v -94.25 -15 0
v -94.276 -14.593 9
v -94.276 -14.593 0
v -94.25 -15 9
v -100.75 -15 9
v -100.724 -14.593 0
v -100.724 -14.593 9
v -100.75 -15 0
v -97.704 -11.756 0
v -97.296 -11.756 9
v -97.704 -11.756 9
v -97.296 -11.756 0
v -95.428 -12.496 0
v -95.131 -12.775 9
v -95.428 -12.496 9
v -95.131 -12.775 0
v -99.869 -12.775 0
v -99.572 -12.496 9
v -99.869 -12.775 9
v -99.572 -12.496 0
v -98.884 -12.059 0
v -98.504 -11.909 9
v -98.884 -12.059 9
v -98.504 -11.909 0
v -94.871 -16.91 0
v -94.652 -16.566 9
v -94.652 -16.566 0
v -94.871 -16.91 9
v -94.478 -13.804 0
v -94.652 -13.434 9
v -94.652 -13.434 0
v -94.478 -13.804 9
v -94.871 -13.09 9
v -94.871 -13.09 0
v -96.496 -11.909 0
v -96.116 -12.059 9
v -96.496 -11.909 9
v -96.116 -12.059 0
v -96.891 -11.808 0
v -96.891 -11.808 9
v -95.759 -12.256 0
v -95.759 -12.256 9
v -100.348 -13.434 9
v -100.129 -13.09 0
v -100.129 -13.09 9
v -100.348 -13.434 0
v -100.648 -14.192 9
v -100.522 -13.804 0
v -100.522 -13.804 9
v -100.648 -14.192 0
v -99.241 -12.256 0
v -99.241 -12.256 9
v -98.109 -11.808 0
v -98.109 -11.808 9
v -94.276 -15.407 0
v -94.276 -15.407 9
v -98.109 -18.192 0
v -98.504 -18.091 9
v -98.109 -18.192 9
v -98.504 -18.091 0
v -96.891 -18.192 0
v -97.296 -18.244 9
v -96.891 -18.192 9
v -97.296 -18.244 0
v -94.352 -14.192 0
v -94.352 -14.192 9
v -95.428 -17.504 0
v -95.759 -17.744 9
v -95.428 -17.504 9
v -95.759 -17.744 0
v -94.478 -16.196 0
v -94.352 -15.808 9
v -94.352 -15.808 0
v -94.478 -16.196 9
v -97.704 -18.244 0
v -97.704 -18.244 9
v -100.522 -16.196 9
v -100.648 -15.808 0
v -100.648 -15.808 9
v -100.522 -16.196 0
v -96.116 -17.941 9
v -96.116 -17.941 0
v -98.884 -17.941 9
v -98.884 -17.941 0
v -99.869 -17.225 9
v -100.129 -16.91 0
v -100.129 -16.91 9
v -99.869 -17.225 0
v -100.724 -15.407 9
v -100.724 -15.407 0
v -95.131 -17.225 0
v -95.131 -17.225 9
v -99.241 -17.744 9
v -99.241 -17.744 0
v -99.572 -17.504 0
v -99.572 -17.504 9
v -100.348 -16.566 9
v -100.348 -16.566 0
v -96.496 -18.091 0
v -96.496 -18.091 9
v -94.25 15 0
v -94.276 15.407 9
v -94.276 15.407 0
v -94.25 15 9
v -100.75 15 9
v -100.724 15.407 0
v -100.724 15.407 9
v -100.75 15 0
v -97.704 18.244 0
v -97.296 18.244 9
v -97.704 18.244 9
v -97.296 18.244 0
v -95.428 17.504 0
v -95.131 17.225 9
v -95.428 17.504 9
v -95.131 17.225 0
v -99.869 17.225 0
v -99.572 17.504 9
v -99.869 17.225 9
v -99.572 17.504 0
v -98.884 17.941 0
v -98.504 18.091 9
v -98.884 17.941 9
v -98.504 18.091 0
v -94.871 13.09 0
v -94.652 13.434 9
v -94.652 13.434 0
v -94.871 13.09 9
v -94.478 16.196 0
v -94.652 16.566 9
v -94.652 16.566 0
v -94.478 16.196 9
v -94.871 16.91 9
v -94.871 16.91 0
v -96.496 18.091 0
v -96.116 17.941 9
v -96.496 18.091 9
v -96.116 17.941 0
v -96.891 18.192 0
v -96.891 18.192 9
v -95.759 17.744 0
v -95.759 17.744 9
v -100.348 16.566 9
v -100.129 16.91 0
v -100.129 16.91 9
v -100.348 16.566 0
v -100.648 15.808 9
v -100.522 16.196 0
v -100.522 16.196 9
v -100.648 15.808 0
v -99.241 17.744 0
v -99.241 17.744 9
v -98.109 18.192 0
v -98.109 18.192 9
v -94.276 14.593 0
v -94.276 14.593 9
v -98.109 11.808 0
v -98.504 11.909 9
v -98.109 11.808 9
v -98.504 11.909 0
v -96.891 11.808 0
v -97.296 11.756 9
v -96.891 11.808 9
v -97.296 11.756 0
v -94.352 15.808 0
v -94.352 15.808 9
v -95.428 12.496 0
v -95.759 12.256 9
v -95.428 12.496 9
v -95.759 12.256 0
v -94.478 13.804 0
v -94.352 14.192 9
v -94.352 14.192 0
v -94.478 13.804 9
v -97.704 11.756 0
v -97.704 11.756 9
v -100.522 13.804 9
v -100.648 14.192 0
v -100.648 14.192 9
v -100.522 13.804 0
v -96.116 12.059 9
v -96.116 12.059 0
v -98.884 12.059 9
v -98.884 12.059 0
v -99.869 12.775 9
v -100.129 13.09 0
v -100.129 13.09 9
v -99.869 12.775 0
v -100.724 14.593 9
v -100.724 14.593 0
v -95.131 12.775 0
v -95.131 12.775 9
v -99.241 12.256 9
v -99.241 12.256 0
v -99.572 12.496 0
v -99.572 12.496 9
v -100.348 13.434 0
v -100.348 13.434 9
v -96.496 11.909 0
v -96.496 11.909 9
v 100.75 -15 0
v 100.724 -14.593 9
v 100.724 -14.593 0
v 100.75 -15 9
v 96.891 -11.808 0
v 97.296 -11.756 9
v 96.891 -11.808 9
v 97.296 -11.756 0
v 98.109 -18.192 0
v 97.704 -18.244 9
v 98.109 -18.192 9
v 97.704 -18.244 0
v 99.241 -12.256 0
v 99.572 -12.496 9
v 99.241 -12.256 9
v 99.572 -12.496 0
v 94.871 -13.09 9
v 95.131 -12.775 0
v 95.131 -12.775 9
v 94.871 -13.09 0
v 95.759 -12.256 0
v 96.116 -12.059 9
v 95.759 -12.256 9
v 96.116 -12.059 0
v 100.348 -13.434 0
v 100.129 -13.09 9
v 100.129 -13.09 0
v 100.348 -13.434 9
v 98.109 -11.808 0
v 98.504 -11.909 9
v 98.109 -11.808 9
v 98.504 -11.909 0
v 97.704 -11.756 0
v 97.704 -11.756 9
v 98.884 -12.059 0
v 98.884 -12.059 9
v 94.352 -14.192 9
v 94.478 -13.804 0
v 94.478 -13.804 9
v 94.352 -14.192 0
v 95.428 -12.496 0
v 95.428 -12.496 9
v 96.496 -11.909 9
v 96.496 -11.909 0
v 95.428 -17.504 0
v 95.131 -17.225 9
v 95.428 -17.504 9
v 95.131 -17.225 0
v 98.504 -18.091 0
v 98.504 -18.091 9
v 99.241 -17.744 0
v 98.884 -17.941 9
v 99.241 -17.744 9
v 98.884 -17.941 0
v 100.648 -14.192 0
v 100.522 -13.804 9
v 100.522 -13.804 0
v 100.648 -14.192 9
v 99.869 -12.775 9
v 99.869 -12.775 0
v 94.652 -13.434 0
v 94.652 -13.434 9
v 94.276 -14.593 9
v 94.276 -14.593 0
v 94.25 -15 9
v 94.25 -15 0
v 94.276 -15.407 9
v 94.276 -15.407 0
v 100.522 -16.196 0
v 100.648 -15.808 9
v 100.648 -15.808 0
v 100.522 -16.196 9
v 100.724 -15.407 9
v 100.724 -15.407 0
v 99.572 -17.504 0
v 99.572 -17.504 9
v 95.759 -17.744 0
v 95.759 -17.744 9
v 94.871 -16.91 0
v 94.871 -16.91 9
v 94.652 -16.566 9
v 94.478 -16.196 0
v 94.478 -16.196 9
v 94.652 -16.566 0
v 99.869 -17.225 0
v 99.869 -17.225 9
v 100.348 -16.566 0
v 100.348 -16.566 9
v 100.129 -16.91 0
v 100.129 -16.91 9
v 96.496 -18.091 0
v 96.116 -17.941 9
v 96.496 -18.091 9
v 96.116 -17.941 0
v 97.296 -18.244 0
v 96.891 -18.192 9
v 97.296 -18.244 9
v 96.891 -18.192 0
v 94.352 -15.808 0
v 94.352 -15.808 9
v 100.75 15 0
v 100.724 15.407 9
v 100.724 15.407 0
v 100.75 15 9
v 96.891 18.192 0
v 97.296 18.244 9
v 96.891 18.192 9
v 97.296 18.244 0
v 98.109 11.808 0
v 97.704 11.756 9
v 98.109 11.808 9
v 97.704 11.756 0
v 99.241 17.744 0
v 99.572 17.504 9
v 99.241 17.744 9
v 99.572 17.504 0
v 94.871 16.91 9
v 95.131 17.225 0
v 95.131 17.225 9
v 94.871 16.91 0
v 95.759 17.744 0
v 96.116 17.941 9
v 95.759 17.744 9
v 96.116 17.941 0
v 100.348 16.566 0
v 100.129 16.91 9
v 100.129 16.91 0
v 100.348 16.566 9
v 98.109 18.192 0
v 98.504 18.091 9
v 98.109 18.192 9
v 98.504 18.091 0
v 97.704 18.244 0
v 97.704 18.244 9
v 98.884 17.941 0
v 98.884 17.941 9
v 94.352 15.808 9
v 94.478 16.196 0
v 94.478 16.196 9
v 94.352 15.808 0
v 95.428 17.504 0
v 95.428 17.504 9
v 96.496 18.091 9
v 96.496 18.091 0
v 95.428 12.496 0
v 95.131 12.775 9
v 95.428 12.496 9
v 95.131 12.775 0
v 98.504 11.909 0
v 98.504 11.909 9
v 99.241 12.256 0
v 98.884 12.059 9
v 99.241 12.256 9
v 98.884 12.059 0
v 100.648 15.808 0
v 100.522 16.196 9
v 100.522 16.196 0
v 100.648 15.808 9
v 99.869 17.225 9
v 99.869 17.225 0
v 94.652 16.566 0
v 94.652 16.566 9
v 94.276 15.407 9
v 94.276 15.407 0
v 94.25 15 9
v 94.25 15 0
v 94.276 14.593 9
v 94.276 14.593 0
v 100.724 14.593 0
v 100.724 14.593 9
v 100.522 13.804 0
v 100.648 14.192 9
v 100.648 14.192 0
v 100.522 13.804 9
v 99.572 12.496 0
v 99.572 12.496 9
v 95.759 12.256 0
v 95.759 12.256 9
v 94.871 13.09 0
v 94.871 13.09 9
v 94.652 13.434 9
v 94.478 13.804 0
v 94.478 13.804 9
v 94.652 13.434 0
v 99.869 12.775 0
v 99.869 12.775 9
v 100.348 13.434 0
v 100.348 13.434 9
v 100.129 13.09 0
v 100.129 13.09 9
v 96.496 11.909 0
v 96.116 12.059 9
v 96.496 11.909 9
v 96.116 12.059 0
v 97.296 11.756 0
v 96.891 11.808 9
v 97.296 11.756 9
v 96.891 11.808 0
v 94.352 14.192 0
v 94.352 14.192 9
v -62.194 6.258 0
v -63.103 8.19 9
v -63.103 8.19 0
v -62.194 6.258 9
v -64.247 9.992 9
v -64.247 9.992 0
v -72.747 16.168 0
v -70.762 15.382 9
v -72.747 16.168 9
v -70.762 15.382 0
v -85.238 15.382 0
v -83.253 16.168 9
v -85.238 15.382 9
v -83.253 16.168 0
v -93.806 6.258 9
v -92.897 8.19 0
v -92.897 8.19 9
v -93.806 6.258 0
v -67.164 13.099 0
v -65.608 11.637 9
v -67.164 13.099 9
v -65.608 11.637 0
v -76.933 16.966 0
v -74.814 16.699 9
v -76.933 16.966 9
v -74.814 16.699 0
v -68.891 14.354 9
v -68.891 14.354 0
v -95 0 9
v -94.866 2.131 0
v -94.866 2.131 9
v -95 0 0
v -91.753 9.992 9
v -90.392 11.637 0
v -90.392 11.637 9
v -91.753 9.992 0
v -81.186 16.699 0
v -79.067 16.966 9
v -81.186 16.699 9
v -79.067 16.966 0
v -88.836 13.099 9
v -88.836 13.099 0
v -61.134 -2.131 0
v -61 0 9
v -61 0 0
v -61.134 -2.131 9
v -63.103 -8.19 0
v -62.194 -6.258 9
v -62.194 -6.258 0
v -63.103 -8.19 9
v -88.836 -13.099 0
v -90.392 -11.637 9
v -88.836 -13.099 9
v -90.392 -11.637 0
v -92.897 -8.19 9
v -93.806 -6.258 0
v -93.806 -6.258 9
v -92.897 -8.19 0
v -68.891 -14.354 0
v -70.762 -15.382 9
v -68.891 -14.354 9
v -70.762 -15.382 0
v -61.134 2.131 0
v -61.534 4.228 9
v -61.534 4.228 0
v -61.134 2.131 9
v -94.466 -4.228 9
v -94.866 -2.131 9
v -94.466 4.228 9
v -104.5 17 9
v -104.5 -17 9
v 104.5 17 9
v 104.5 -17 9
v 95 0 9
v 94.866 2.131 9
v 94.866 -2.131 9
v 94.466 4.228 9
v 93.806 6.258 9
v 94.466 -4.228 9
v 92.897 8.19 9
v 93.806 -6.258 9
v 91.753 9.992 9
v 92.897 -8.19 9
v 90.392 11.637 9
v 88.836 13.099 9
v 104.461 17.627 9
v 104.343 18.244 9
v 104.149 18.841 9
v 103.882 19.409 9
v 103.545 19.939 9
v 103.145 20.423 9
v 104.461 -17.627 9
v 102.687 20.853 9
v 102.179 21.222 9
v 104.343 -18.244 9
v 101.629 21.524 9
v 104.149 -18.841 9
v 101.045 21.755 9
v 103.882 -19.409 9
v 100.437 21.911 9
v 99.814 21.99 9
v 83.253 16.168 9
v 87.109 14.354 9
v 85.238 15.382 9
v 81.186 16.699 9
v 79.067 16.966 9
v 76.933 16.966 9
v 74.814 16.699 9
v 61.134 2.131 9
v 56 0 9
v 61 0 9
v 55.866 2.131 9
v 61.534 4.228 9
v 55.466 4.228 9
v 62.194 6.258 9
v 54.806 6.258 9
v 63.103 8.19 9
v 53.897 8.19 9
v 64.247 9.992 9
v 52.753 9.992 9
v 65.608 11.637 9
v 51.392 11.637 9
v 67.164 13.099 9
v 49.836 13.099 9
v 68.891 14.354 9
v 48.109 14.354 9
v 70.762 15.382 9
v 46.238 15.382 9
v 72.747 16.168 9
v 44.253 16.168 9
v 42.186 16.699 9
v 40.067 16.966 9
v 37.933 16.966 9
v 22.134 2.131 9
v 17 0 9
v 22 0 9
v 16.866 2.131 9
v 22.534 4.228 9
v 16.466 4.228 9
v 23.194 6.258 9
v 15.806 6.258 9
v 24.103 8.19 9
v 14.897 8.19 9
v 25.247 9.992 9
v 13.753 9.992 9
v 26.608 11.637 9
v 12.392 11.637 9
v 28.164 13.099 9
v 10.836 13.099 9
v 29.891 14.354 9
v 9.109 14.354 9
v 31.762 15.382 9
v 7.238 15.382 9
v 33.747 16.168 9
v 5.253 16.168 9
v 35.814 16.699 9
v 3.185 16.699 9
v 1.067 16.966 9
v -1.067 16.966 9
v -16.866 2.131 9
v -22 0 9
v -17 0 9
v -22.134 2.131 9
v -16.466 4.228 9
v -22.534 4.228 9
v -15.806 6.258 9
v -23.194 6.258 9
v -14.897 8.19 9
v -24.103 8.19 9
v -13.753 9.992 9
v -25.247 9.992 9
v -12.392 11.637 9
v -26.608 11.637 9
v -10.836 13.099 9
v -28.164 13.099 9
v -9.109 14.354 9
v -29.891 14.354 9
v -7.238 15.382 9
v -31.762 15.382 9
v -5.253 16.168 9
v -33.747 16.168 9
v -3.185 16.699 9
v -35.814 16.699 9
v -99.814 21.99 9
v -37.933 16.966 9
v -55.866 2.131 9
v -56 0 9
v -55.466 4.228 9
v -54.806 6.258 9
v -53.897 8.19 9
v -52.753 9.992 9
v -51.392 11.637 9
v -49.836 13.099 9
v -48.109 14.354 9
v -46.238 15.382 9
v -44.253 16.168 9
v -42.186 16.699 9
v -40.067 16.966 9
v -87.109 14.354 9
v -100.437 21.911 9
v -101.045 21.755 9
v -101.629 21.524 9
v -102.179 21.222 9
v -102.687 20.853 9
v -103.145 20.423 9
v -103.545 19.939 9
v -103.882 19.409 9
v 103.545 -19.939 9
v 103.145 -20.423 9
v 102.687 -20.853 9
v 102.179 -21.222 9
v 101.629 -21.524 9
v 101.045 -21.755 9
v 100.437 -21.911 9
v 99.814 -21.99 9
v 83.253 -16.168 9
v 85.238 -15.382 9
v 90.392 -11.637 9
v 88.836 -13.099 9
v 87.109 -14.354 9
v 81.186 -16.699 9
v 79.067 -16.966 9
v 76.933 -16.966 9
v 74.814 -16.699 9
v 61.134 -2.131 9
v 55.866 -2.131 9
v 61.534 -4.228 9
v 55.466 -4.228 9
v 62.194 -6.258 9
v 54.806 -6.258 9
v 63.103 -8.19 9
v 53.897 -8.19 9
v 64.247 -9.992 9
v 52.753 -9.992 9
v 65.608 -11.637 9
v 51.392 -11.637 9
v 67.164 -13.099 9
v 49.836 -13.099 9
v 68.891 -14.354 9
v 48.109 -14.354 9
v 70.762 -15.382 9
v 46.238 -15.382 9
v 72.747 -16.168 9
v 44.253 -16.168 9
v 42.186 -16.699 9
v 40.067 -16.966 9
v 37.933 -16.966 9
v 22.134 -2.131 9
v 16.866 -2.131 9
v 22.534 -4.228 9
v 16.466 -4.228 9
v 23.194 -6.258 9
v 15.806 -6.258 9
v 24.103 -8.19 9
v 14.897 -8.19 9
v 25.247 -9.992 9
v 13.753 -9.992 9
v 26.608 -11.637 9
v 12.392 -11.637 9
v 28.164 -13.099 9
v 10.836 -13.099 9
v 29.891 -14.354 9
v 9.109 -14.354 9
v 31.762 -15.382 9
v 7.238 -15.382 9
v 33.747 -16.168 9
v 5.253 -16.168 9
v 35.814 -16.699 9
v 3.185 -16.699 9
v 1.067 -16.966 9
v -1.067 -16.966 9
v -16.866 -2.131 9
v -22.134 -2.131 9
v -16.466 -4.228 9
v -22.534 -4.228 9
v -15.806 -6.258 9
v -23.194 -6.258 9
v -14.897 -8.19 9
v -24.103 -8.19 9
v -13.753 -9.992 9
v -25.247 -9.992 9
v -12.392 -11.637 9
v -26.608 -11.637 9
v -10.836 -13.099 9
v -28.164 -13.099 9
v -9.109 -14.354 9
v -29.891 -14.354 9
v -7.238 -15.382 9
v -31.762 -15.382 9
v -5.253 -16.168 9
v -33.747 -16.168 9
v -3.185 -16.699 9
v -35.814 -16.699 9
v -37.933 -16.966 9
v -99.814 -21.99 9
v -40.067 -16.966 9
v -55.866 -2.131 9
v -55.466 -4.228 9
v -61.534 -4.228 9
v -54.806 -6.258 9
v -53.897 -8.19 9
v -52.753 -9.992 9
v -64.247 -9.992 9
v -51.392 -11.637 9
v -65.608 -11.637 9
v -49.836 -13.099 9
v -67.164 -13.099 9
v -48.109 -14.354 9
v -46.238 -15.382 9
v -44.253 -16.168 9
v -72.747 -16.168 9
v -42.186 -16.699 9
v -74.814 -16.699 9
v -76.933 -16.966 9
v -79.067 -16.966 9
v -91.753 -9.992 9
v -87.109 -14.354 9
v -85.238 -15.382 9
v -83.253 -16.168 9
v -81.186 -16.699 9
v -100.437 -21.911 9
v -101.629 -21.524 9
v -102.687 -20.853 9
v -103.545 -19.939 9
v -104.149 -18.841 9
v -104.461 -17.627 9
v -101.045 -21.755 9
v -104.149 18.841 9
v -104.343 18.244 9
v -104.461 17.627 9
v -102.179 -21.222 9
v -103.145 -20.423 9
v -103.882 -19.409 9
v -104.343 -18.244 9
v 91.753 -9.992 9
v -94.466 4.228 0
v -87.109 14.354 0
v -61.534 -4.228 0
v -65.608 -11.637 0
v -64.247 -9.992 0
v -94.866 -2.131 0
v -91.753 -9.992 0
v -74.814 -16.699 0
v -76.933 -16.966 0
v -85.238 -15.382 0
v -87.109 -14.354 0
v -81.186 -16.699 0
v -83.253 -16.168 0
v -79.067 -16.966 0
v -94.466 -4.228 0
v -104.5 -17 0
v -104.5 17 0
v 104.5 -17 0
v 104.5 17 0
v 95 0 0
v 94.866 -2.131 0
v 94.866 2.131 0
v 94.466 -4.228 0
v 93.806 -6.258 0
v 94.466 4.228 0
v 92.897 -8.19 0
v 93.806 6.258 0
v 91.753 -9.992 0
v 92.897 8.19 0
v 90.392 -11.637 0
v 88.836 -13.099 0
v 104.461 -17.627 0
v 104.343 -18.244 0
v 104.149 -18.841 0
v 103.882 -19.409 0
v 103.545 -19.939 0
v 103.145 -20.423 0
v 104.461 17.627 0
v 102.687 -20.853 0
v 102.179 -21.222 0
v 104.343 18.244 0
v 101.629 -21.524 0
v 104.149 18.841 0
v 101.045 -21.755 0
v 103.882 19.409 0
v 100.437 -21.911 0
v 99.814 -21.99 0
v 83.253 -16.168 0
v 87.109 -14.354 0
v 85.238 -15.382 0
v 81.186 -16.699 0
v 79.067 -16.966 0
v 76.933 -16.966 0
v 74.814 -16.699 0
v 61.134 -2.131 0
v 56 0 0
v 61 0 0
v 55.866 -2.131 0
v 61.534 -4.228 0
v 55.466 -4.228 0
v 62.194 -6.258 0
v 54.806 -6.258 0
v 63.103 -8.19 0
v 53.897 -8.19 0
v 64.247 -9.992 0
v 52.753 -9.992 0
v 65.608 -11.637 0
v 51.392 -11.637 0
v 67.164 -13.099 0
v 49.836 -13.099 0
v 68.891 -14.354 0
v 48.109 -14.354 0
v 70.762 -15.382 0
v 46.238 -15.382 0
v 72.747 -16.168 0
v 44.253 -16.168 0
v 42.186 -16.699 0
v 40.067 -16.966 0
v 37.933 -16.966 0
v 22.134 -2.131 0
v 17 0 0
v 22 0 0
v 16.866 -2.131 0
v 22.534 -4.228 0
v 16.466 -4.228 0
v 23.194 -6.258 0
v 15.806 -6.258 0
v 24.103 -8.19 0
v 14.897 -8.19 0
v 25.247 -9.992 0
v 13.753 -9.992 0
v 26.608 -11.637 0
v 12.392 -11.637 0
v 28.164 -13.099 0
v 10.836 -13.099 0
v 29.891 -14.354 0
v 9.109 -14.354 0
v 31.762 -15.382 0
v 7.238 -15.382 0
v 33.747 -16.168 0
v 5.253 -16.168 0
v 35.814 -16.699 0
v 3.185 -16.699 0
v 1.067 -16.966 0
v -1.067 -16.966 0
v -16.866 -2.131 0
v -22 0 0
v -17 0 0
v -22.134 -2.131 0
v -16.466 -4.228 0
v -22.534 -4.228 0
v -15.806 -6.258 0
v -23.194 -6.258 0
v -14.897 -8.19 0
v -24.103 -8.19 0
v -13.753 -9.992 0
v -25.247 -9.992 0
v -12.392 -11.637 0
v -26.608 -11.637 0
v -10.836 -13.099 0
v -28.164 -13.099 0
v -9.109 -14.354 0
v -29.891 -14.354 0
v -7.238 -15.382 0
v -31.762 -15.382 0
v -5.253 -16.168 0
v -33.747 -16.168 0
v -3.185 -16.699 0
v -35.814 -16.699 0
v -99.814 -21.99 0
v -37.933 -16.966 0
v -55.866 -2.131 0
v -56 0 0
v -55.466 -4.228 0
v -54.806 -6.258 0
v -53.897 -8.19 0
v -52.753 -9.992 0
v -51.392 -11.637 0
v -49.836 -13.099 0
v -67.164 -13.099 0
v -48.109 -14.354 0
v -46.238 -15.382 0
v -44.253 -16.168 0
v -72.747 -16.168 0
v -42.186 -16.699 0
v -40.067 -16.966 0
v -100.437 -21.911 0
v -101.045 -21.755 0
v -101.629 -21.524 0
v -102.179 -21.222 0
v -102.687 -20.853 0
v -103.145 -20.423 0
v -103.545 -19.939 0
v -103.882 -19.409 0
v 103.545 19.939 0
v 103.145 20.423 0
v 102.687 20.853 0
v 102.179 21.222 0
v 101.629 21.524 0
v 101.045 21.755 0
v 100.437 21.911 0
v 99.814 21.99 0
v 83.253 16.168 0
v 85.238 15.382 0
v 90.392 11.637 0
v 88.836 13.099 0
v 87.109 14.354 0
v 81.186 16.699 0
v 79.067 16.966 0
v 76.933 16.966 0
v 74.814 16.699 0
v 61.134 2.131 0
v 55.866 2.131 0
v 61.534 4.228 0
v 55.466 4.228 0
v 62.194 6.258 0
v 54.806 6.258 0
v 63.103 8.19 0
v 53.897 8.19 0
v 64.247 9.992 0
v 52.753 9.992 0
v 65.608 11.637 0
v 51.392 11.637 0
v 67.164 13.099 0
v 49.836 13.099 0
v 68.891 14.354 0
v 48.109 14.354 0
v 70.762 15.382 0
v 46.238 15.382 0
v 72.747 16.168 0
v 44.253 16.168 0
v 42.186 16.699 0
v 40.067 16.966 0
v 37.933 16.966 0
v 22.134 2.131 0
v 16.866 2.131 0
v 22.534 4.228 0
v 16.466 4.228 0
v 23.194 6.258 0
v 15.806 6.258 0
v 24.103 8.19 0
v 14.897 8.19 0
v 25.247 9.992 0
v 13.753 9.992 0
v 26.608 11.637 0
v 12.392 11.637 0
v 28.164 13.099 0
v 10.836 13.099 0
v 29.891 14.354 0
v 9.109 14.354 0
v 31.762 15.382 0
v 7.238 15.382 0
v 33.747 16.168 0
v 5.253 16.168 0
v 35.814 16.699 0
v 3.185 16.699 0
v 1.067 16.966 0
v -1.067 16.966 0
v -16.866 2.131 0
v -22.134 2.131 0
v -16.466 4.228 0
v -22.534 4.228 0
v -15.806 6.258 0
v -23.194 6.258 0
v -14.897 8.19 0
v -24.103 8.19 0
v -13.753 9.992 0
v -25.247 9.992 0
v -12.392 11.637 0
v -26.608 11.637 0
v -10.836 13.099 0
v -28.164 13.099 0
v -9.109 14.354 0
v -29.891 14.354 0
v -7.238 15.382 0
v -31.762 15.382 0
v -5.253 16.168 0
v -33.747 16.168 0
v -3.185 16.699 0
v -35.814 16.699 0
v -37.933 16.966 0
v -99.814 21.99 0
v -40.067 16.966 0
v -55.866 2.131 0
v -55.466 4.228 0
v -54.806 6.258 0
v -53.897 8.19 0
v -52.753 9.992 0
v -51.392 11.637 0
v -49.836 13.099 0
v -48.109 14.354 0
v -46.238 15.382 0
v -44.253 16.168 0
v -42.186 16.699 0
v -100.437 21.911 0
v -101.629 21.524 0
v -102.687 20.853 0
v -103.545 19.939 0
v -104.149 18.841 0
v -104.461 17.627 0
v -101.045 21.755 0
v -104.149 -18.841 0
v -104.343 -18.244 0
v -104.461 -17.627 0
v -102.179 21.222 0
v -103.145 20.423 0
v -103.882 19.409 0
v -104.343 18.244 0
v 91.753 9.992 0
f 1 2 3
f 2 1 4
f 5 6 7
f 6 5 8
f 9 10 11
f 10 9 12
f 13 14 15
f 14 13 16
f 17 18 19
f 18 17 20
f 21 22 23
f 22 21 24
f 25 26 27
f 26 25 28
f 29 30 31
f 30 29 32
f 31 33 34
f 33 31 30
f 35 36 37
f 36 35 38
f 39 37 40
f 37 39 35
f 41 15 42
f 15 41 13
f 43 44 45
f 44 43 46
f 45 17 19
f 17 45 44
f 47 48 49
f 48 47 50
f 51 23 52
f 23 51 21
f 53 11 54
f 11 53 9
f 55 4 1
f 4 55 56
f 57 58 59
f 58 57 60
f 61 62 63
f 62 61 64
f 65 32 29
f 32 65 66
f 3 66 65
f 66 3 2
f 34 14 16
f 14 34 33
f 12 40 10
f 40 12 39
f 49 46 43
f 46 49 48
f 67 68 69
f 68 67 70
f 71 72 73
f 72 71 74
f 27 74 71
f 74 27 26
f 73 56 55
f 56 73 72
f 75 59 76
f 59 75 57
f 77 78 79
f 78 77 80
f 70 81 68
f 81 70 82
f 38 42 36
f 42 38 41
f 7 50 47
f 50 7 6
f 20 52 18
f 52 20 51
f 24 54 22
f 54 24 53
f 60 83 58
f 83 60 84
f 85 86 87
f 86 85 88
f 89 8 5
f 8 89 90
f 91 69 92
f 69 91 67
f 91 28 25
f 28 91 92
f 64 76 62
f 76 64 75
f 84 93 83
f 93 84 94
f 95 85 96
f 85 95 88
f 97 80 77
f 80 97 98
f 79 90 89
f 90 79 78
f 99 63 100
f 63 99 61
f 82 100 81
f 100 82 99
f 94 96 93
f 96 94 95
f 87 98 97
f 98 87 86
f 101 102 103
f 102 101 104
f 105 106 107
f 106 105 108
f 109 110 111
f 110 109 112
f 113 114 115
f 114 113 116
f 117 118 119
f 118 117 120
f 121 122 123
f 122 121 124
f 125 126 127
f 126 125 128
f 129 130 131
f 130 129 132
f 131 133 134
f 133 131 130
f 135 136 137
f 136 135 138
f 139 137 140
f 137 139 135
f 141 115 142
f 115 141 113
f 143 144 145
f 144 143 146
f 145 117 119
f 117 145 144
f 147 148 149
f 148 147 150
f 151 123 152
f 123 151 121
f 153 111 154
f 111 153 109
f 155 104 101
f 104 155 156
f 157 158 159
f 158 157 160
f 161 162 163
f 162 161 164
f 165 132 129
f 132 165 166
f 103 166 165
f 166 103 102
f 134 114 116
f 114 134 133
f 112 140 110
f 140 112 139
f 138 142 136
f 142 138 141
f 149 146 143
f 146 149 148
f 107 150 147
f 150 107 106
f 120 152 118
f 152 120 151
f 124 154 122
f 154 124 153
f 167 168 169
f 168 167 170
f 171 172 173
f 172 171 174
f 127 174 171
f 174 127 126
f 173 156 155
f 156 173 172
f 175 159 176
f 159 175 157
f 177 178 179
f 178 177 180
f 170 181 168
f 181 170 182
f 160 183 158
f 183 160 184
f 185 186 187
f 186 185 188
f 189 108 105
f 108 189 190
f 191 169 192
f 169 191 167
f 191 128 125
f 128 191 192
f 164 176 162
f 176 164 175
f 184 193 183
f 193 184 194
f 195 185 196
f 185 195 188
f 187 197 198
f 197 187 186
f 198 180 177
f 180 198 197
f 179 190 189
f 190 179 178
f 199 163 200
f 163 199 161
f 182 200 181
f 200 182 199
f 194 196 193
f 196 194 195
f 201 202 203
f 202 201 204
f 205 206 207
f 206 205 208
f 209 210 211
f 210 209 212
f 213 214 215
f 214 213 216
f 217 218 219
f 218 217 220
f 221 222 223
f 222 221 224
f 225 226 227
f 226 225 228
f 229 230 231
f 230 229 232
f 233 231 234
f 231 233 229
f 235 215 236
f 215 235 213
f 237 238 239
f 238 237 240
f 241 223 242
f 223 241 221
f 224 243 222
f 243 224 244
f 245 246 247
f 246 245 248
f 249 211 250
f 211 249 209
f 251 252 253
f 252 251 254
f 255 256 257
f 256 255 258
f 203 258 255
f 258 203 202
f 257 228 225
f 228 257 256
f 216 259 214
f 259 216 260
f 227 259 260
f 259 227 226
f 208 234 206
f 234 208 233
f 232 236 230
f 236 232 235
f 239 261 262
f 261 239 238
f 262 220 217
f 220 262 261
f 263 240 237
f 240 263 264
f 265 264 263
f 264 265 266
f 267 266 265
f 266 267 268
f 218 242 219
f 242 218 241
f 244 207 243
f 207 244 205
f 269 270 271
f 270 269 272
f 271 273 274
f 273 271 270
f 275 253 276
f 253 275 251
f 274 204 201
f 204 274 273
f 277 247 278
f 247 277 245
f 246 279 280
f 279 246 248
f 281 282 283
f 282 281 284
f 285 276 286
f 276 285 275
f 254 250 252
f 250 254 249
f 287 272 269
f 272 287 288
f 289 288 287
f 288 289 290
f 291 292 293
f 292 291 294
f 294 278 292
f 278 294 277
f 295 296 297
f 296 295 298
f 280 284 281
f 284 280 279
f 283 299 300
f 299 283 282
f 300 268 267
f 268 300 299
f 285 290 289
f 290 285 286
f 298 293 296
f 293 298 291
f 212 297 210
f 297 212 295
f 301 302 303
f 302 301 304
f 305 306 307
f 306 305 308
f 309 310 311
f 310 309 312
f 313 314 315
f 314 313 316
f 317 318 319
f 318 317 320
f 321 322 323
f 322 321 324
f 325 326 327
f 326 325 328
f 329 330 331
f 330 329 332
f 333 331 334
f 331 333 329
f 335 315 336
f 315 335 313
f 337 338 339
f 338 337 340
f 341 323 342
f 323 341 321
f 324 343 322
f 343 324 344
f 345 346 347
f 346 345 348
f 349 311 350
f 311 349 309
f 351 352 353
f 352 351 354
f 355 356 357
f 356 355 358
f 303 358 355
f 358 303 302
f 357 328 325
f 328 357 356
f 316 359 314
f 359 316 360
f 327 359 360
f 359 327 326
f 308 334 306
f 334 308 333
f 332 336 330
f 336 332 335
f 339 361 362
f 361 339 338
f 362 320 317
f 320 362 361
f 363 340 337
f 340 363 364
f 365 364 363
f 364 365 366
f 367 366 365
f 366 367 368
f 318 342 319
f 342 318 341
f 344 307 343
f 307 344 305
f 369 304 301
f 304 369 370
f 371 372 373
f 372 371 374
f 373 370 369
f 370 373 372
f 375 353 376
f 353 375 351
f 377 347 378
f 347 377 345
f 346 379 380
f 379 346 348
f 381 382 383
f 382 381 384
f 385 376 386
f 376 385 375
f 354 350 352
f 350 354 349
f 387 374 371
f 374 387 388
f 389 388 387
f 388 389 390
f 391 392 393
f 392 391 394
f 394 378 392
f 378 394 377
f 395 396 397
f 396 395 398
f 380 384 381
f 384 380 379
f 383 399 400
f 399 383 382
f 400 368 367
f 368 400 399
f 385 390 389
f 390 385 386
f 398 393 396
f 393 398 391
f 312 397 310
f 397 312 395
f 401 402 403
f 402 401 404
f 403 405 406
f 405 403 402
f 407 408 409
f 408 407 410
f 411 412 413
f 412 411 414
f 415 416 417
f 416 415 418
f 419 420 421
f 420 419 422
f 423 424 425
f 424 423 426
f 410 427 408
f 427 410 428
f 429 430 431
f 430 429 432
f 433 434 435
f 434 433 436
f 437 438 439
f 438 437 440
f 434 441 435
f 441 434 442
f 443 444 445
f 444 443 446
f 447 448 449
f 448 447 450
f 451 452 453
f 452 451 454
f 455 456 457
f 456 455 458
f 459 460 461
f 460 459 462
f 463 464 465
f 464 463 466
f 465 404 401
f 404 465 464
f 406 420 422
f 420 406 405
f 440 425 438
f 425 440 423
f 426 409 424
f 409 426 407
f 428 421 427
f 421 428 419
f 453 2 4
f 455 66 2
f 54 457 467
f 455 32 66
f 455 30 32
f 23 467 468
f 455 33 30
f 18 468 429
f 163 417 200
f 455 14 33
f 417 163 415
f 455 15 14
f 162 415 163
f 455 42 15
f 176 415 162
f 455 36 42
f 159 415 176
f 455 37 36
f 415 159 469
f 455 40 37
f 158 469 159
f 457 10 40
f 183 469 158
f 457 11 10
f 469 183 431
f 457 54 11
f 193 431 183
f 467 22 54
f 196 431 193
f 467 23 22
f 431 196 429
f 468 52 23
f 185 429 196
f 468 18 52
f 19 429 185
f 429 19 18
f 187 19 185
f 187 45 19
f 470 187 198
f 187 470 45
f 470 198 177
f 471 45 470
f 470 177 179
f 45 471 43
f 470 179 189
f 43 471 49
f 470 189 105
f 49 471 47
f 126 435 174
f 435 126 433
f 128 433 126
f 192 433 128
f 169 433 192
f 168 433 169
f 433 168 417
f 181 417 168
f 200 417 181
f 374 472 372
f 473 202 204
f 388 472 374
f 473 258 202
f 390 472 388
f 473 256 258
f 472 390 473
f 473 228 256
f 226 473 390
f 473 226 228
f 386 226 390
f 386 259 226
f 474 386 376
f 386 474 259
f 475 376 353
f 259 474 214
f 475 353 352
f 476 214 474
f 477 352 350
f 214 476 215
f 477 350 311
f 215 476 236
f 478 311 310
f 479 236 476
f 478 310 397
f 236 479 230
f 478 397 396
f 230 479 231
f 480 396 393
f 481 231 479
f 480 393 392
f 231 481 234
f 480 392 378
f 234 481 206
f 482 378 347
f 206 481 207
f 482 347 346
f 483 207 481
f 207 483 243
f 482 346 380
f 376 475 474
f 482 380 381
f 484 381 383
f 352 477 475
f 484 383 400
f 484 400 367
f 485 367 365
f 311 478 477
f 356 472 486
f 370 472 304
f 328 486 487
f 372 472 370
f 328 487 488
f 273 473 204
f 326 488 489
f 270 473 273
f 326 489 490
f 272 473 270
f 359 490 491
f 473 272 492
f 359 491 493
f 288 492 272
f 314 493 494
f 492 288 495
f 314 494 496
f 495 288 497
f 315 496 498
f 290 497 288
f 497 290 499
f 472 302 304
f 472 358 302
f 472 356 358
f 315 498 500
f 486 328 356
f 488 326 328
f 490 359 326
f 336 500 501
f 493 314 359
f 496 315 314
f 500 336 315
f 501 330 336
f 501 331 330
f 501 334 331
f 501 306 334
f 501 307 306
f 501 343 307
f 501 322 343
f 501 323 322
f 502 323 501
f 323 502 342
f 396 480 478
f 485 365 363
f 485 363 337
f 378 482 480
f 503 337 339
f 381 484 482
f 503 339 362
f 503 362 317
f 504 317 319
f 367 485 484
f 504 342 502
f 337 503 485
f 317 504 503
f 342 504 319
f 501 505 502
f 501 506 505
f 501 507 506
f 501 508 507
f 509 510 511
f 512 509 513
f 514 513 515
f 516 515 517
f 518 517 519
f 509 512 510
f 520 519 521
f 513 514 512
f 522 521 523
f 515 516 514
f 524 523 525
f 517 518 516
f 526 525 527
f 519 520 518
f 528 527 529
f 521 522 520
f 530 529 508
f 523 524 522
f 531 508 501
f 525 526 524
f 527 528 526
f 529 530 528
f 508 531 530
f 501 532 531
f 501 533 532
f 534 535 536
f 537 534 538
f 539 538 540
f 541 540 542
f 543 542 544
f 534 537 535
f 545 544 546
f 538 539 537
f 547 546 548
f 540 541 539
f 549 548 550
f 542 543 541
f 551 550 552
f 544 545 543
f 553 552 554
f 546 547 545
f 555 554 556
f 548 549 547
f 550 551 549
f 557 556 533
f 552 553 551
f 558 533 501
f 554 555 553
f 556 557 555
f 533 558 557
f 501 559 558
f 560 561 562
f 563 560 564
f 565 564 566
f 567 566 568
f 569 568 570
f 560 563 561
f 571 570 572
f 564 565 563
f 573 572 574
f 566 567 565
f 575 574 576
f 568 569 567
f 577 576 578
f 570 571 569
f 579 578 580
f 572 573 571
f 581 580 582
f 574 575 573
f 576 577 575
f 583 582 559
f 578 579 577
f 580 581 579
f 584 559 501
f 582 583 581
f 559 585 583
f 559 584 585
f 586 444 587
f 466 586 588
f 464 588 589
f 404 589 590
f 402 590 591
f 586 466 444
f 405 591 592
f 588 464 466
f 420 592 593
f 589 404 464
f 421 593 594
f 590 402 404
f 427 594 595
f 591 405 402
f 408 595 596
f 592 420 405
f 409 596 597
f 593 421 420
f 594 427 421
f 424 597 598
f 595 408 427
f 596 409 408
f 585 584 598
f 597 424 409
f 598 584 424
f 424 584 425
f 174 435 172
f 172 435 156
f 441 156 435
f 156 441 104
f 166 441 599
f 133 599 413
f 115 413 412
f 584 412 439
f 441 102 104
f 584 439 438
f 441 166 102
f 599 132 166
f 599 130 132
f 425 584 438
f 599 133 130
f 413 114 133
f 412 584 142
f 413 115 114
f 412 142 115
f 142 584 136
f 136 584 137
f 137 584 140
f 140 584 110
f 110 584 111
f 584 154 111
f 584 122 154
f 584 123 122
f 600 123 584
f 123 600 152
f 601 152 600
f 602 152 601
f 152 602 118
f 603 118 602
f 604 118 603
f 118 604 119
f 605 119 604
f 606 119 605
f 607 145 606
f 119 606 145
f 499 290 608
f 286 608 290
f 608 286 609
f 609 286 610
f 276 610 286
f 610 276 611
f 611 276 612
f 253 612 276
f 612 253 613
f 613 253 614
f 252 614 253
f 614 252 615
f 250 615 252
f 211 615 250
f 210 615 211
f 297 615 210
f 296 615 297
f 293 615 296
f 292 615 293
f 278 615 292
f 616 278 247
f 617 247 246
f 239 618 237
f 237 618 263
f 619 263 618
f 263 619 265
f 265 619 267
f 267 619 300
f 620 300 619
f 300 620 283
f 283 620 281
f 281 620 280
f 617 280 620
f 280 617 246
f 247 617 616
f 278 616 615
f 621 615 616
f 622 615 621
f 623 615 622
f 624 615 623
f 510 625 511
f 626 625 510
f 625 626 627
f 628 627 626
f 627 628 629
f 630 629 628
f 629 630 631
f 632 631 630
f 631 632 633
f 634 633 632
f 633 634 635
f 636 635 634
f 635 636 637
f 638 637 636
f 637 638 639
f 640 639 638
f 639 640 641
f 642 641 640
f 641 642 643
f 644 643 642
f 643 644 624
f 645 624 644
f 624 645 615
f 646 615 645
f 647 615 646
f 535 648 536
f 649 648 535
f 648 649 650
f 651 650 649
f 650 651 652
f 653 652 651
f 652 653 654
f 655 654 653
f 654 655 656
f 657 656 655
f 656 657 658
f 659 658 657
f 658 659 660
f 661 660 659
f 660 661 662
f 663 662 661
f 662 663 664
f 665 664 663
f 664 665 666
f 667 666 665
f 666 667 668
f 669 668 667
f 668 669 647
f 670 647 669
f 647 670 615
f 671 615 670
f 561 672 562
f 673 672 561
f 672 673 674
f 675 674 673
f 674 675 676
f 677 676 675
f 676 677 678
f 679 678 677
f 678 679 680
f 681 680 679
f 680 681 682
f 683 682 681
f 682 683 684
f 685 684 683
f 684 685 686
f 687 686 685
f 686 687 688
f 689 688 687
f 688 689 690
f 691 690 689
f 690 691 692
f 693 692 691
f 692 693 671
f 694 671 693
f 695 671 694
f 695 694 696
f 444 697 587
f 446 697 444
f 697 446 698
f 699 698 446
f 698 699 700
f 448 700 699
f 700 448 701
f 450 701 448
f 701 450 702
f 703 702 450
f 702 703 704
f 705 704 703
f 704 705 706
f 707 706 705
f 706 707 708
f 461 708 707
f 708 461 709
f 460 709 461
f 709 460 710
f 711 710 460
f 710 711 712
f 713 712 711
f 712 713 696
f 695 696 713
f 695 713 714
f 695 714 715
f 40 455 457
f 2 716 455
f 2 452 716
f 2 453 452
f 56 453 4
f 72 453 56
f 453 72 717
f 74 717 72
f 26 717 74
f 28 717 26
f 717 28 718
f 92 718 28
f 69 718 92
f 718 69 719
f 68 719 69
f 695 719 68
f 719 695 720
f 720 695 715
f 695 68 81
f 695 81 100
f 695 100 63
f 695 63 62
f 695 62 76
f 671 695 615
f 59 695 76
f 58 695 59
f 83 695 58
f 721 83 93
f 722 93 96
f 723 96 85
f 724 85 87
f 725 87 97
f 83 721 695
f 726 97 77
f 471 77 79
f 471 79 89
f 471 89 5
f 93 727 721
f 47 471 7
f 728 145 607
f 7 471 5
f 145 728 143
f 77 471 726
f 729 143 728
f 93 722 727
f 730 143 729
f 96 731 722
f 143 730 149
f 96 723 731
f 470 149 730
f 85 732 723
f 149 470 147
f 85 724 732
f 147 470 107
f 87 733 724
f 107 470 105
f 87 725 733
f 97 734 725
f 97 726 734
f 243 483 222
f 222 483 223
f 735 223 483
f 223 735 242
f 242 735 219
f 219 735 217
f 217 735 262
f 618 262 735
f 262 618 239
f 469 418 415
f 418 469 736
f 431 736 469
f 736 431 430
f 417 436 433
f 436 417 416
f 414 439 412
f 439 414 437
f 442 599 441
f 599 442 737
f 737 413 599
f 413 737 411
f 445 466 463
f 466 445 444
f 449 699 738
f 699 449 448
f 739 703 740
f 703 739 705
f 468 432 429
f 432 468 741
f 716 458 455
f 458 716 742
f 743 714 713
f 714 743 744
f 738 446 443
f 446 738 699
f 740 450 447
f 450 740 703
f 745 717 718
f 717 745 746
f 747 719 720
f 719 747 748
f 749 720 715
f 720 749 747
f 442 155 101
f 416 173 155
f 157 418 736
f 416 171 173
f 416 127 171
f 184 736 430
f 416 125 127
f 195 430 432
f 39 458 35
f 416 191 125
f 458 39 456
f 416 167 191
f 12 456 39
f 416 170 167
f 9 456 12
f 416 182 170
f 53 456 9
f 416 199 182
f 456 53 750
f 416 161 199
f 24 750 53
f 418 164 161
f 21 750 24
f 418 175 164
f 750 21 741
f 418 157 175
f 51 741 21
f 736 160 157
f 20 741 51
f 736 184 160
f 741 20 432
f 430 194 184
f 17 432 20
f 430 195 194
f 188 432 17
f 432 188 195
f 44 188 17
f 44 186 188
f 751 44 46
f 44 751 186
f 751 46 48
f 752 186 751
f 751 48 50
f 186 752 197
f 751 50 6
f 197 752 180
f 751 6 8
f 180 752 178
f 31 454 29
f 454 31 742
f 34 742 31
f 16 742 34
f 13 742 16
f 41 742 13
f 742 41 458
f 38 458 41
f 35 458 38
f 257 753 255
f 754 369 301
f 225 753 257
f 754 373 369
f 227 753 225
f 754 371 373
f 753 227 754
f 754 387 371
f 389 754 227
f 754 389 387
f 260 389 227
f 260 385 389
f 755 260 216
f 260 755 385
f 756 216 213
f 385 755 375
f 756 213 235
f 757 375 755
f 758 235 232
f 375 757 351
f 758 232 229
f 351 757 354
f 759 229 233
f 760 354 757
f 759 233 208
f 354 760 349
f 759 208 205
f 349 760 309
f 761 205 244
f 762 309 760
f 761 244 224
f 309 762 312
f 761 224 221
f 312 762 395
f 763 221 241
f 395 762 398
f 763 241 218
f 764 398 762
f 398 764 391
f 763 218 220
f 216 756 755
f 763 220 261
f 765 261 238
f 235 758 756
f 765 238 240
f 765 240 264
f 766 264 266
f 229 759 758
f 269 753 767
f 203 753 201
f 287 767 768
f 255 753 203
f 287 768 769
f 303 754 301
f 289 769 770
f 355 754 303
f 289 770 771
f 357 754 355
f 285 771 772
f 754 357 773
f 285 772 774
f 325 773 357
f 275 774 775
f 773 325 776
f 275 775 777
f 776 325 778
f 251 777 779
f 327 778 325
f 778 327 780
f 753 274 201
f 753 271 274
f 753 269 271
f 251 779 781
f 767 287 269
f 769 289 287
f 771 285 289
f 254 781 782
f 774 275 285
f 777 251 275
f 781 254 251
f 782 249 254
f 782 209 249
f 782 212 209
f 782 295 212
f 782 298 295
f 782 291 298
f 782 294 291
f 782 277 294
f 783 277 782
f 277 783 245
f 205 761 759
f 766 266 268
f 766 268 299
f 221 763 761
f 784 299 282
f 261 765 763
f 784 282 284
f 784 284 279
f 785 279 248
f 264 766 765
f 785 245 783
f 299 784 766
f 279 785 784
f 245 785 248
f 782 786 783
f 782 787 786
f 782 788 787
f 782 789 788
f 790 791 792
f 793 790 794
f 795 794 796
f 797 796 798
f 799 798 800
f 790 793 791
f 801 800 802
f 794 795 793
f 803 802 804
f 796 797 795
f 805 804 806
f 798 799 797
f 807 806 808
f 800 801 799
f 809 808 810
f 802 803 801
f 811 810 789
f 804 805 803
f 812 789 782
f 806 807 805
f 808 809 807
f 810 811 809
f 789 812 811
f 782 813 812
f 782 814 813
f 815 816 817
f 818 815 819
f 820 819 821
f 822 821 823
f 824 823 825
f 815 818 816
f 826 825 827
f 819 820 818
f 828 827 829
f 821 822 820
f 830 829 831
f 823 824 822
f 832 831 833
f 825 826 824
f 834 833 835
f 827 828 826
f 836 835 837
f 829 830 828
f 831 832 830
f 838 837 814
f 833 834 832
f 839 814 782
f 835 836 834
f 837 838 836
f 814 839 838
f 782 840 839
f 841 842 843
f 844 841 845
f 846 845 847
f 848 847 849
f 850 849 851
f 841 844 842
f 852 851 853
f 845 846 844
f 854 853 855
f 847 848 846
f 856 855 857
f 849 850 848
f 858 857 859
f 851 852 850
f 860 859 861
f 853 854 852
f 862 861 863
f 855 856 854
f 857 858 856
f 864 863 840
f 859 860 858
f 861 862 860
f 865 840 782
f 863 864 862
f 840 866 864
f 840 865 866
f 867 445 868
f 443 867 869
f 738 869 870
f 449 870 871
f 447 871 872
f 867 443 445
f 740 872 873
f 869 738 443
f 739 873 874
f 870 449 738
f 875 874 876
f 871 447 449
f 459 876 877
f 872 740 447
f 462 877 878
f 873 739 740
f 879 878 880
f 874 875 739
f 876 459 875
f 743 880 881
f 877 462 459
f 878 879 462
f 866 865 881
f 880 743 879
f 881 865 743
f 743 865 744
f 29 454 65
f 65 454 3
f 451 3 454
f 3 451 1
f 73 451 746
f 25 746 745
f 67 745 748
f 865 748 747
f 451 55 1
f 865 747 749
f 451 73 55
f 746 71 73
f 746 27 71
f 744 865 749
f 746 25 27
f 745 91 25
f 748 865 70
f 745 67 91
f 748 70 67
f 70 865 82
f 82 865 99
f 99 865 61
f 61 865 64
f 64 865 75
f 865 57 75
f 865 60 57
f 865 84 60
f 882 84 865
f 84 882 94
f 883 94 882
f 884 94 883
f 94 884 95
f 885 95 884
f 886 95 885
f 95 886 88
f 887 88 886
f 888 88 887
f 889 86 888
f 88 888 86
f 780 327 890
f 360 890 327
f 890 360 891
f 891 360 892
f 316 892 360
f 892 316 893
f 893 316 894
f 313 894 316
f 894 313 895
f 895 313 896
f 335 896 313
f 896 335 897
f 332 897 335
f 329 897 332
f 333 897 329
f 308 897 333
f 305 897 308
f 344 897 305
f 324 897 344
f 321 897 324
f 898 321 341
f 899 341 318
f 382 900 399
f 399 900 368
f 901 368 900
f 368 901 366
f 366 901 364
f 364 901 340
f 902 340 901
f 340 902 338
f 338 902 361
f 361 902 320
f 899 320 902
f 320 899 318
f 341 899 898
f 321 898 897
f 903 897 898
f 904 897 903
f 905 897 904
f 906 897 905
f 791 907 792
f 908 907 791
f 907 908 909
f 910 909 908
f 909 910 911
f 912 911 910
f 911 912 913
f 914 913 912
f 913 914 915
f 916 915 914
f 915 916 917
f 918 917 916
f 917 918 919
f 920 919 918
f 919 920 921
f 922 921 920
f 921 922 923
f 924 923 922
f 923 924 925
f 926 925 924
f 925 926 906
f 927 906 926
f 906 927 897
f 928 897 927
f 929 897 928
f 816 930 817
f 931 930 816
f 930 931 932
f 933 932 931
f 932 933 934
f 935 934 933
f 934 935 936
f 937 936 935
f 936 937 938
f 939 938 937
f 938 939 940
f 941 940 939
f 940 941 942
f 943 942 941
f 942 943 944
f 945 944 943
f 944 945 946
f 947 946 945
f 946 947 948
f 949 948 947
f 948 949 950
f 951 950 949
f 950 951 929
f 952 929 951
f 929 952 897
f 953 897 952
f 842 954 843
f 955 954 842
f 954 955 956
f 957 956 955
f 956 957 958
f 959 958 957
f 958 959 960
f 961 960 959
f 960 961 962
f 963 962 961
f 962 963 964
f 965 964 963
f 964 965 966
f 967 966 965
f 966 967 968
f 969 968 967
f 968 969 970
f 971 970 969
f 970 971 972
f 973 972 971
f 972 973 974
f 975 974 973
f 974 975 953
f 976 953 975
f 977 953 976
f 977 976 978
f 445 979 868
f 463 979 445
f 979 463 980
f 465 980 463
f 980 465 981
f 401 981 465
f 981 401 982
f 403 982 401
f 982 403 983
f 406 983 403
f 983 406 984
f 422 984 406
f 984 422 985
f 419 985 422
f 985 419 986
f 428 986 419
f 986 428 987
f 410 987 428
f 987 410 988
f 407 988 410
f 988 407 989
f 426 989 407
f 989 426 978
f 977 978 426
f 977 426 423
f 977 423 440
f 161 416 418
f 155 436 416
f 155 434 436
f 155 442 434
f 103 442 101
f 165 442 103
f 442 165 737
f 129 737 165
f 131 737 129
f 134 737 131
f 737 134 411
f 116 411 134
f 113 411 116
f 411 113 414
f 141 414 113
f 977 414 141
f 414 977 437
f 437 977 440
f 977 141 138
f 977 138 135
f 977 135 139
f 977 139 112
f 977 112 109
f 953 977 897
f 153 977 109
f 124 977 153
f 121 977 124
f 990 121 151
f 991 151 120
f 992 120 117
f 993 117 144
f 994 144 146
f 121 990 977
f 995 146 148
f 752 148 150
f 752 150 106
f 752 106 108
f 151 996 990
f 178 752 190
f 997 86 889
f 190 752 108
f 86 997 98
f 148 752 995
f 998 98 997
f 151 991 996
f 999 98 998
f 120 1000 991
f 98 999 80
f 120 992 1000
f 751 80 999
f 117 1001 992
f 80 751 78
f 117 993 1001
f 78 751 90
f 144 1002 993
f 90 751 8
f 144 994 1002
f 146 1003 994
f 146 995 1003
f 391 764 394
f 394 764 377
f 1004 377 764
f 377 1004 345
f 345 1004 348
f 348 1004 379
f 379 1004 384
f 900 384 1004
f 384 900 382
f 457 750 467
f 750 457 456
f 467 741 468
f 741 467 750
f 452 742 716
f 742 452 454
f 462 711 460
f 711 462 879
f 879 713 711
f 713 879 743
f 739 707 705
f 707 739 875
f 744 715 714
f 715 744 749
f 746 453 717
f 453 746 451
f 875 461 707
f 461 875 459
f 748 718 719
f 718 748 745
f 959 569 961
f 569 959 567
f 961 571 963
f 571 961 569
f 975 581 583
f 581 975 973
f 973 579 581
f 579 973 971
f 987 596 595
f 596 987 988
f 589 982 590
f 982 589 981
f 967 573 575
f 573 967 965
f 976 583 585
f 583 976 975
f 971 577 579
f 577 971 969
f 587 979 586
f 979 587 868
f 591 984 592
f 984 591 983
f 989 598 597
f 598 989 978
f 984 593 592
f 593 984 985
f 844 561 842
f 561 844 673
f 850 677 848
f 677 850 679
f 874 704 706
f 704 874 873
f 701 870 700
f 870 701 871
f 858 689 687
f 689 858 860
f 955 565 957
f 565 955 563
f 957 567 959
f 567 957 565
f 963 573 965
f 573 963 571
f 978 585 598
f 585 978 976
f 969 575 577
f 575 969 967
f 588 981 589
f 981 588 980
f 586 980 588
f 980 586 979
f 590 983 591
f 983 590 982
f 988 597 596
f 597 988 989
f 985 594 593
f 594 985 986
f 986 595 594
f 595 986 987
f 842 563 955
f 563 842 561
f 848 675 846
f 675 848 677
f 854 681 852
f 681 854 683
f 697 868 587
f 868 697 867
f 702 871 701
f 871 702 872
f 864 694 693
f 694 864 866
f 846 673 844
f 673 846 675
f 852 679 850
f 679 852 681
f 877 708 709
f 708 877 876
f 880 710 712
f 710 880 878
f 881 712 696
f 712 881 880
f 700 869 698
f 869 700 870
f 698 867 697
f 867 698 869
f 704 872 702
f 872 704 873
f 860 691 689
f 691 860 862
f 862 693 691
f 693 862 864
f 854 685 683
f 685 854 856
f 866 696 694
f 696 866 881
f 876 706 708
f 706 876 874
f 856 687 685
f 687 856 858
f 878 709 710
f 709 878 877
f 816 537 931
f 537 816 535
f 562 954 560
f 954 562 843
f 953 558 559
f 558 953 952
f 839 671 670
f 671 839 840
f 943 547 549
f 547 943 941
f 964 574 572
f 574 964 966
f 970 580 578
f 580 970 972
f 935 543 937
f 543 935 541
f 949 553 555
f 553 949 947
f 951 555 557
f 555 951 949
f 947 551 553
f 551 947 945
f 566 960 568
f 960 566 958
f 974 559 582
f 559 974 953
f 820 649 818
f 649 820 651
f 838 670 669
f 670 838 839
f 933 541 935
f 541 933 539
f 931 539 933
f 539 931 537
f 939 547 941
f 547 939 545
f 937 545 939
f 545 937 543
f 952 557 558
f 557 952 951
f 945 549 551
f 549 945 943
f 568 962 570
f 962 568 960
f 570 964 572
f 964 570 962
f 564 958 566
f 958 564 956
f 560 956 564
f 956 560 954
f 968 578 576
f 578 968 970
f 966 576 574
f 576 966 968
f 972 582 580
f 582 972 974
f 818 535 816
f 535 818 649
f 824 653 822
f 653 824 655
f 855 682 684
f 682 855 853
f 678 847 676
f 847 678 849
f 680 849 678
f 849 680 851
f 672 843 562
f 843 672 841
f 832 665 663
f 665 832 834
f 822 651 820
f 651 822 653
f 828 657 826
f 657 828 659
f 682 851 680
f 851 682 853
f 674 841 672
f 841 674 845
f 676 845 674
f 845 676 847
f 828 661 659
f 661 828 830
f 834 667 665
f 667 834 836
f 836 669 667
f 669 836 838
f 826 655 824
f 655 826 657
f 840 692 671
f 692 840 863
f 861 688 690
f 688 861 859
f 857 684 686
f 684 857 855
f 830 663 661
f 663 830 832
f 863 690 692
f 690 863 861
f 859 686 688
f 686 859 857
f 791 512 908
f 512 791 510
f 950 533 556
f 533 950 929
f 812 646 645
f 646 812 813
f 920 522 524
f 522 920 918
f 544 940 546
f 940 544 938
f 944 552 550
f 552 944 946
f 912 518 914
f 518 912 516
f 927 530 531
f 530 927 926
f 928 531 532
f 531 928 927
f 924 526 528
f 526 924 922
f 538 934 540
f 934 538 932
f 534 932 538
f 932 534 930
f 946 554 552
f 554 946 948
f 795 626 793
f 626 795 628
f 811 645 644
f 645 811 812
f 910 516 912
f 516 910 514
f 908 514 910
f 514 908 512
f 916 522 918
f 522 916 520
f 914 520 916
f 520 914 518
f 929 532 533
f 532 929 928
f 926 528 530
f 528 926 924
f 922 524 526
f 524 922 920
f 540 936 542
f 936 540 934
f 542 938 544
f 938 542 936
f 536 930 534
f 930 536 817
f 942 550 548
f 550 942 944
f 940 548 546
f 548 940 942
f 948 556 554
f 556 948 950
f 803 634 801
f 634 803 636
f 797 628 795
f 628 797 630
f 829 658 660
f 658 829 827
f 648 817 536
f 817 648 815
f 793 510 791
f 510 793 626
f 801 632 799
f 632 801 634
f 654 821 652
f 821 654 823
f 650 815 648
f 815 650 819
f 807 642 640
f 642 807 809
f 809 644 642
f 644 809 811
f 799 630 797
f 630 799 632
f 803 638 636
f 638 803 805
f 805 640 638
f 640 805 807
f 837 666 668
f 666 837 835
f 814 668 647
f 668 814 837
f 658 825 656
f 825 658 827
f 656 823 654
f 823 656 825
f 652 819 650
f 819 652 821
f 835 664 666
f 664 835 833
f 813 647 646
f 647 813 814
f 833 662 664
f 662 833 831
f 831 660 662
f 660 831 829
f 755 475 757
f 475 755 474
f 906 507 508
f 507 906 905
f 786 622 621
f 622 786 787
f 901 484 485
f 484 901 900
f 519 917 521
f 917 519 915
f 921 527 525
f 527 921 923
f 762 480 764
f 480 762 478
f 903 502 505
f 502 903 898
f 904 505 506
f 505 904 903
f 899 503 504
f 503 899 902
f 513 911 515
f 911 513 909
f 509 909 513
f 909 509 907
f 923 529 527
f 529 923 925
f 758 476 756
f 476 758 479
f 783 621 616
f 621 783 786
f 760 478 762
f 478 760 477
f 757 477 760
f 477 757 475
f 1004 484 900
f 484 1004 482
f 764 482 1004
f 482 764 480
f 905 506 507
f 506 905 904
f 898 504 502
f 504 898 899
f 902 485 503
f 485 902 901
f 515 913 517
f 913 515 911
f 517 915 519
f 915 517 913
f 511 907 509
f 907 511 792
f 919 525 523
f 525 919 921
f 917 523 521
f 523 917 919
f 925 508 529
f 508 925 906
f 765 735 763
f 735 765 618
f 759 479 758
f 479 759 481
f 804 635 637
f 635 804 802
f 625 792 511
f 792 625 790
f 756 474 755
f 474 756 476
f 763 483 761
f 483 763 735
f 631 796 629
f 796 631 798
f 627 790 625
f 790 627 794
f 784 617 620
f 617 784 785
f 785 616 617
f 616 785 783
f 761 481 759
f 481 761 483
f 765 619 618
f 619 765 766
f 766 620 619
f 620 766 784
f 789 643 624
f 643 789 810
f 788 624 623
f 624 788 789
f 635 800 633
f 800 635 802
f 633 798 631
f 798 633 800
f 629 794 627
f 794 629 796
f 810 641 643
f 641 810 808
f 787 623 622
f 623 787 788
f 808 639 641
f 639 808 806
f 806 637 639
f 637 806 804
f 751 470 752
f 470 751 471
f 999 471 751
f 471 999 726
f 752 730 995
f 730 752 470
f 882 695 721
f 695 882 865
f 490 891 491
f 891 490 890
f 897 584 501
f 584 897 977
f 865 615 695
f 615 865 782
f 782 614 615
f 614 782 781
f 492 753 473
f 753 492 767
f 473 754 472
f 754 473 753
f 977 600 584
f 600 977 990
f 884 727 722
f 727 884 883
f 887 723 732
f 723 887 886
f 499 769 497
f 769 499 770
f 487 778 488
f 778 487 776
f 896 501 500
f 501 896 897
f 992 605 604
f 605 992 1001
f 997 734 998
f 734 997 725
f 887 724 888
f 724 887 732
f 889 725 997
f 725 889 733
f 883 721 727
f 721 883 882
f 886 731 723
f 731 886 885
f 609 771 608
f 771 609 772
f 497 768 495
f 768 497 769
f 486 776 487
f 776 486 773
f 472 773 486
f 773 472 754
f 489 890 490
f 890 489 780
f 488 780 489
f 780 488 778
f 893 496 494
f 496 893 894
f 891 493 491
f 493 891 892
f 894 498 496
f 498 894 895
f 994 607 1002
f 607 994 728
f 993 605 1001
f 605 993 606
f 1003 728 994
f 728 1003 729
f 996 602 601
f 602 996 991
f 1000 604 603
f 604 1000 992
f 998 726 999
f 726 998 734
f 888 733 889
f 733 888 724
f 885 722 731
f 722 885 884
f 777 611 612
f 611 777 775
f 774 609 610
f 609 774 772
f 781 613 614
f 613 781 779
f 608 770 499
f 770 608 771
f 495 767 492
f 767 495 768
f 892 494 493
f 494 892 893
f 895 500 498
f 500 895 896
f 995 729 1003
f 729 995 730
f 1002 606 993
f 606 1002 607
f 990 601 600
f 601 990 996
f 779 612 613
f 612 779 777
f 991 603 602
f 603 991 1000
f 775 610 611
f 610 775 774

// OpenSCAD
$fn = 50;


difference() {
	union() {
		hull() {
			translate(v = [-99.5000000000, 17.0000000000, 0]) {
				cylinder(h = 9, r = 5);
			}
			translate(v = [99.5000000000, 17.0000000000, 0]) {
				cylinder(h = 9, r = 5);
			}
			translate(v = [-99.5000000000, -17.0000000000, 0]) {
				cylinder(h = 9, r = 5);
			}
			translate(v = [99.5000000000, -17.0000000000, 0]) {
				cylinder(h = 9, r = 5);
			}
		}
	}
	union() {
		#translate(v = [-97.5000000000, -15.0000000000, -100.0000000000]) {
			cylinder(h = 200, r = 3.2500000000);
		}
		#translate(v = [-97.5000000000, 15.0000000000, -100.0000000000]) {
			cylinder(h = 200, r = 3.2500000000);
		}
		#translate(v = [97.5000000000, -15.0000000000, -100.0000000000]) {
			cylinder(h = 200, r = 3.2500000000);
		}
		#translate(v = [97.5000000000, 15.0000000000, -100.0000000000]) {
			cylinder(h = 200, r = 3.2500000000);
		}
		#translate(v = [-78.0000000000, 0, 0]) {
			cylinder(h = 9, r = 17.0000000000);
		}
		#translate(v = [-39.0000000000, 0, 0]) {
			cylinder(h = 9, r = 17.0000000000);
		}
		#cylinder(h = 9, r = 17.0000000000);
		#translate(v = [39.0000000000, 0, 0]) {
			cylinder(h = 9, r = 17.0000000000);
		}
		#translate(v = [78.0000000000, 0, 0]) {
			cylinder(h = 9, r = 17.0000000000);
		}
	}
}
